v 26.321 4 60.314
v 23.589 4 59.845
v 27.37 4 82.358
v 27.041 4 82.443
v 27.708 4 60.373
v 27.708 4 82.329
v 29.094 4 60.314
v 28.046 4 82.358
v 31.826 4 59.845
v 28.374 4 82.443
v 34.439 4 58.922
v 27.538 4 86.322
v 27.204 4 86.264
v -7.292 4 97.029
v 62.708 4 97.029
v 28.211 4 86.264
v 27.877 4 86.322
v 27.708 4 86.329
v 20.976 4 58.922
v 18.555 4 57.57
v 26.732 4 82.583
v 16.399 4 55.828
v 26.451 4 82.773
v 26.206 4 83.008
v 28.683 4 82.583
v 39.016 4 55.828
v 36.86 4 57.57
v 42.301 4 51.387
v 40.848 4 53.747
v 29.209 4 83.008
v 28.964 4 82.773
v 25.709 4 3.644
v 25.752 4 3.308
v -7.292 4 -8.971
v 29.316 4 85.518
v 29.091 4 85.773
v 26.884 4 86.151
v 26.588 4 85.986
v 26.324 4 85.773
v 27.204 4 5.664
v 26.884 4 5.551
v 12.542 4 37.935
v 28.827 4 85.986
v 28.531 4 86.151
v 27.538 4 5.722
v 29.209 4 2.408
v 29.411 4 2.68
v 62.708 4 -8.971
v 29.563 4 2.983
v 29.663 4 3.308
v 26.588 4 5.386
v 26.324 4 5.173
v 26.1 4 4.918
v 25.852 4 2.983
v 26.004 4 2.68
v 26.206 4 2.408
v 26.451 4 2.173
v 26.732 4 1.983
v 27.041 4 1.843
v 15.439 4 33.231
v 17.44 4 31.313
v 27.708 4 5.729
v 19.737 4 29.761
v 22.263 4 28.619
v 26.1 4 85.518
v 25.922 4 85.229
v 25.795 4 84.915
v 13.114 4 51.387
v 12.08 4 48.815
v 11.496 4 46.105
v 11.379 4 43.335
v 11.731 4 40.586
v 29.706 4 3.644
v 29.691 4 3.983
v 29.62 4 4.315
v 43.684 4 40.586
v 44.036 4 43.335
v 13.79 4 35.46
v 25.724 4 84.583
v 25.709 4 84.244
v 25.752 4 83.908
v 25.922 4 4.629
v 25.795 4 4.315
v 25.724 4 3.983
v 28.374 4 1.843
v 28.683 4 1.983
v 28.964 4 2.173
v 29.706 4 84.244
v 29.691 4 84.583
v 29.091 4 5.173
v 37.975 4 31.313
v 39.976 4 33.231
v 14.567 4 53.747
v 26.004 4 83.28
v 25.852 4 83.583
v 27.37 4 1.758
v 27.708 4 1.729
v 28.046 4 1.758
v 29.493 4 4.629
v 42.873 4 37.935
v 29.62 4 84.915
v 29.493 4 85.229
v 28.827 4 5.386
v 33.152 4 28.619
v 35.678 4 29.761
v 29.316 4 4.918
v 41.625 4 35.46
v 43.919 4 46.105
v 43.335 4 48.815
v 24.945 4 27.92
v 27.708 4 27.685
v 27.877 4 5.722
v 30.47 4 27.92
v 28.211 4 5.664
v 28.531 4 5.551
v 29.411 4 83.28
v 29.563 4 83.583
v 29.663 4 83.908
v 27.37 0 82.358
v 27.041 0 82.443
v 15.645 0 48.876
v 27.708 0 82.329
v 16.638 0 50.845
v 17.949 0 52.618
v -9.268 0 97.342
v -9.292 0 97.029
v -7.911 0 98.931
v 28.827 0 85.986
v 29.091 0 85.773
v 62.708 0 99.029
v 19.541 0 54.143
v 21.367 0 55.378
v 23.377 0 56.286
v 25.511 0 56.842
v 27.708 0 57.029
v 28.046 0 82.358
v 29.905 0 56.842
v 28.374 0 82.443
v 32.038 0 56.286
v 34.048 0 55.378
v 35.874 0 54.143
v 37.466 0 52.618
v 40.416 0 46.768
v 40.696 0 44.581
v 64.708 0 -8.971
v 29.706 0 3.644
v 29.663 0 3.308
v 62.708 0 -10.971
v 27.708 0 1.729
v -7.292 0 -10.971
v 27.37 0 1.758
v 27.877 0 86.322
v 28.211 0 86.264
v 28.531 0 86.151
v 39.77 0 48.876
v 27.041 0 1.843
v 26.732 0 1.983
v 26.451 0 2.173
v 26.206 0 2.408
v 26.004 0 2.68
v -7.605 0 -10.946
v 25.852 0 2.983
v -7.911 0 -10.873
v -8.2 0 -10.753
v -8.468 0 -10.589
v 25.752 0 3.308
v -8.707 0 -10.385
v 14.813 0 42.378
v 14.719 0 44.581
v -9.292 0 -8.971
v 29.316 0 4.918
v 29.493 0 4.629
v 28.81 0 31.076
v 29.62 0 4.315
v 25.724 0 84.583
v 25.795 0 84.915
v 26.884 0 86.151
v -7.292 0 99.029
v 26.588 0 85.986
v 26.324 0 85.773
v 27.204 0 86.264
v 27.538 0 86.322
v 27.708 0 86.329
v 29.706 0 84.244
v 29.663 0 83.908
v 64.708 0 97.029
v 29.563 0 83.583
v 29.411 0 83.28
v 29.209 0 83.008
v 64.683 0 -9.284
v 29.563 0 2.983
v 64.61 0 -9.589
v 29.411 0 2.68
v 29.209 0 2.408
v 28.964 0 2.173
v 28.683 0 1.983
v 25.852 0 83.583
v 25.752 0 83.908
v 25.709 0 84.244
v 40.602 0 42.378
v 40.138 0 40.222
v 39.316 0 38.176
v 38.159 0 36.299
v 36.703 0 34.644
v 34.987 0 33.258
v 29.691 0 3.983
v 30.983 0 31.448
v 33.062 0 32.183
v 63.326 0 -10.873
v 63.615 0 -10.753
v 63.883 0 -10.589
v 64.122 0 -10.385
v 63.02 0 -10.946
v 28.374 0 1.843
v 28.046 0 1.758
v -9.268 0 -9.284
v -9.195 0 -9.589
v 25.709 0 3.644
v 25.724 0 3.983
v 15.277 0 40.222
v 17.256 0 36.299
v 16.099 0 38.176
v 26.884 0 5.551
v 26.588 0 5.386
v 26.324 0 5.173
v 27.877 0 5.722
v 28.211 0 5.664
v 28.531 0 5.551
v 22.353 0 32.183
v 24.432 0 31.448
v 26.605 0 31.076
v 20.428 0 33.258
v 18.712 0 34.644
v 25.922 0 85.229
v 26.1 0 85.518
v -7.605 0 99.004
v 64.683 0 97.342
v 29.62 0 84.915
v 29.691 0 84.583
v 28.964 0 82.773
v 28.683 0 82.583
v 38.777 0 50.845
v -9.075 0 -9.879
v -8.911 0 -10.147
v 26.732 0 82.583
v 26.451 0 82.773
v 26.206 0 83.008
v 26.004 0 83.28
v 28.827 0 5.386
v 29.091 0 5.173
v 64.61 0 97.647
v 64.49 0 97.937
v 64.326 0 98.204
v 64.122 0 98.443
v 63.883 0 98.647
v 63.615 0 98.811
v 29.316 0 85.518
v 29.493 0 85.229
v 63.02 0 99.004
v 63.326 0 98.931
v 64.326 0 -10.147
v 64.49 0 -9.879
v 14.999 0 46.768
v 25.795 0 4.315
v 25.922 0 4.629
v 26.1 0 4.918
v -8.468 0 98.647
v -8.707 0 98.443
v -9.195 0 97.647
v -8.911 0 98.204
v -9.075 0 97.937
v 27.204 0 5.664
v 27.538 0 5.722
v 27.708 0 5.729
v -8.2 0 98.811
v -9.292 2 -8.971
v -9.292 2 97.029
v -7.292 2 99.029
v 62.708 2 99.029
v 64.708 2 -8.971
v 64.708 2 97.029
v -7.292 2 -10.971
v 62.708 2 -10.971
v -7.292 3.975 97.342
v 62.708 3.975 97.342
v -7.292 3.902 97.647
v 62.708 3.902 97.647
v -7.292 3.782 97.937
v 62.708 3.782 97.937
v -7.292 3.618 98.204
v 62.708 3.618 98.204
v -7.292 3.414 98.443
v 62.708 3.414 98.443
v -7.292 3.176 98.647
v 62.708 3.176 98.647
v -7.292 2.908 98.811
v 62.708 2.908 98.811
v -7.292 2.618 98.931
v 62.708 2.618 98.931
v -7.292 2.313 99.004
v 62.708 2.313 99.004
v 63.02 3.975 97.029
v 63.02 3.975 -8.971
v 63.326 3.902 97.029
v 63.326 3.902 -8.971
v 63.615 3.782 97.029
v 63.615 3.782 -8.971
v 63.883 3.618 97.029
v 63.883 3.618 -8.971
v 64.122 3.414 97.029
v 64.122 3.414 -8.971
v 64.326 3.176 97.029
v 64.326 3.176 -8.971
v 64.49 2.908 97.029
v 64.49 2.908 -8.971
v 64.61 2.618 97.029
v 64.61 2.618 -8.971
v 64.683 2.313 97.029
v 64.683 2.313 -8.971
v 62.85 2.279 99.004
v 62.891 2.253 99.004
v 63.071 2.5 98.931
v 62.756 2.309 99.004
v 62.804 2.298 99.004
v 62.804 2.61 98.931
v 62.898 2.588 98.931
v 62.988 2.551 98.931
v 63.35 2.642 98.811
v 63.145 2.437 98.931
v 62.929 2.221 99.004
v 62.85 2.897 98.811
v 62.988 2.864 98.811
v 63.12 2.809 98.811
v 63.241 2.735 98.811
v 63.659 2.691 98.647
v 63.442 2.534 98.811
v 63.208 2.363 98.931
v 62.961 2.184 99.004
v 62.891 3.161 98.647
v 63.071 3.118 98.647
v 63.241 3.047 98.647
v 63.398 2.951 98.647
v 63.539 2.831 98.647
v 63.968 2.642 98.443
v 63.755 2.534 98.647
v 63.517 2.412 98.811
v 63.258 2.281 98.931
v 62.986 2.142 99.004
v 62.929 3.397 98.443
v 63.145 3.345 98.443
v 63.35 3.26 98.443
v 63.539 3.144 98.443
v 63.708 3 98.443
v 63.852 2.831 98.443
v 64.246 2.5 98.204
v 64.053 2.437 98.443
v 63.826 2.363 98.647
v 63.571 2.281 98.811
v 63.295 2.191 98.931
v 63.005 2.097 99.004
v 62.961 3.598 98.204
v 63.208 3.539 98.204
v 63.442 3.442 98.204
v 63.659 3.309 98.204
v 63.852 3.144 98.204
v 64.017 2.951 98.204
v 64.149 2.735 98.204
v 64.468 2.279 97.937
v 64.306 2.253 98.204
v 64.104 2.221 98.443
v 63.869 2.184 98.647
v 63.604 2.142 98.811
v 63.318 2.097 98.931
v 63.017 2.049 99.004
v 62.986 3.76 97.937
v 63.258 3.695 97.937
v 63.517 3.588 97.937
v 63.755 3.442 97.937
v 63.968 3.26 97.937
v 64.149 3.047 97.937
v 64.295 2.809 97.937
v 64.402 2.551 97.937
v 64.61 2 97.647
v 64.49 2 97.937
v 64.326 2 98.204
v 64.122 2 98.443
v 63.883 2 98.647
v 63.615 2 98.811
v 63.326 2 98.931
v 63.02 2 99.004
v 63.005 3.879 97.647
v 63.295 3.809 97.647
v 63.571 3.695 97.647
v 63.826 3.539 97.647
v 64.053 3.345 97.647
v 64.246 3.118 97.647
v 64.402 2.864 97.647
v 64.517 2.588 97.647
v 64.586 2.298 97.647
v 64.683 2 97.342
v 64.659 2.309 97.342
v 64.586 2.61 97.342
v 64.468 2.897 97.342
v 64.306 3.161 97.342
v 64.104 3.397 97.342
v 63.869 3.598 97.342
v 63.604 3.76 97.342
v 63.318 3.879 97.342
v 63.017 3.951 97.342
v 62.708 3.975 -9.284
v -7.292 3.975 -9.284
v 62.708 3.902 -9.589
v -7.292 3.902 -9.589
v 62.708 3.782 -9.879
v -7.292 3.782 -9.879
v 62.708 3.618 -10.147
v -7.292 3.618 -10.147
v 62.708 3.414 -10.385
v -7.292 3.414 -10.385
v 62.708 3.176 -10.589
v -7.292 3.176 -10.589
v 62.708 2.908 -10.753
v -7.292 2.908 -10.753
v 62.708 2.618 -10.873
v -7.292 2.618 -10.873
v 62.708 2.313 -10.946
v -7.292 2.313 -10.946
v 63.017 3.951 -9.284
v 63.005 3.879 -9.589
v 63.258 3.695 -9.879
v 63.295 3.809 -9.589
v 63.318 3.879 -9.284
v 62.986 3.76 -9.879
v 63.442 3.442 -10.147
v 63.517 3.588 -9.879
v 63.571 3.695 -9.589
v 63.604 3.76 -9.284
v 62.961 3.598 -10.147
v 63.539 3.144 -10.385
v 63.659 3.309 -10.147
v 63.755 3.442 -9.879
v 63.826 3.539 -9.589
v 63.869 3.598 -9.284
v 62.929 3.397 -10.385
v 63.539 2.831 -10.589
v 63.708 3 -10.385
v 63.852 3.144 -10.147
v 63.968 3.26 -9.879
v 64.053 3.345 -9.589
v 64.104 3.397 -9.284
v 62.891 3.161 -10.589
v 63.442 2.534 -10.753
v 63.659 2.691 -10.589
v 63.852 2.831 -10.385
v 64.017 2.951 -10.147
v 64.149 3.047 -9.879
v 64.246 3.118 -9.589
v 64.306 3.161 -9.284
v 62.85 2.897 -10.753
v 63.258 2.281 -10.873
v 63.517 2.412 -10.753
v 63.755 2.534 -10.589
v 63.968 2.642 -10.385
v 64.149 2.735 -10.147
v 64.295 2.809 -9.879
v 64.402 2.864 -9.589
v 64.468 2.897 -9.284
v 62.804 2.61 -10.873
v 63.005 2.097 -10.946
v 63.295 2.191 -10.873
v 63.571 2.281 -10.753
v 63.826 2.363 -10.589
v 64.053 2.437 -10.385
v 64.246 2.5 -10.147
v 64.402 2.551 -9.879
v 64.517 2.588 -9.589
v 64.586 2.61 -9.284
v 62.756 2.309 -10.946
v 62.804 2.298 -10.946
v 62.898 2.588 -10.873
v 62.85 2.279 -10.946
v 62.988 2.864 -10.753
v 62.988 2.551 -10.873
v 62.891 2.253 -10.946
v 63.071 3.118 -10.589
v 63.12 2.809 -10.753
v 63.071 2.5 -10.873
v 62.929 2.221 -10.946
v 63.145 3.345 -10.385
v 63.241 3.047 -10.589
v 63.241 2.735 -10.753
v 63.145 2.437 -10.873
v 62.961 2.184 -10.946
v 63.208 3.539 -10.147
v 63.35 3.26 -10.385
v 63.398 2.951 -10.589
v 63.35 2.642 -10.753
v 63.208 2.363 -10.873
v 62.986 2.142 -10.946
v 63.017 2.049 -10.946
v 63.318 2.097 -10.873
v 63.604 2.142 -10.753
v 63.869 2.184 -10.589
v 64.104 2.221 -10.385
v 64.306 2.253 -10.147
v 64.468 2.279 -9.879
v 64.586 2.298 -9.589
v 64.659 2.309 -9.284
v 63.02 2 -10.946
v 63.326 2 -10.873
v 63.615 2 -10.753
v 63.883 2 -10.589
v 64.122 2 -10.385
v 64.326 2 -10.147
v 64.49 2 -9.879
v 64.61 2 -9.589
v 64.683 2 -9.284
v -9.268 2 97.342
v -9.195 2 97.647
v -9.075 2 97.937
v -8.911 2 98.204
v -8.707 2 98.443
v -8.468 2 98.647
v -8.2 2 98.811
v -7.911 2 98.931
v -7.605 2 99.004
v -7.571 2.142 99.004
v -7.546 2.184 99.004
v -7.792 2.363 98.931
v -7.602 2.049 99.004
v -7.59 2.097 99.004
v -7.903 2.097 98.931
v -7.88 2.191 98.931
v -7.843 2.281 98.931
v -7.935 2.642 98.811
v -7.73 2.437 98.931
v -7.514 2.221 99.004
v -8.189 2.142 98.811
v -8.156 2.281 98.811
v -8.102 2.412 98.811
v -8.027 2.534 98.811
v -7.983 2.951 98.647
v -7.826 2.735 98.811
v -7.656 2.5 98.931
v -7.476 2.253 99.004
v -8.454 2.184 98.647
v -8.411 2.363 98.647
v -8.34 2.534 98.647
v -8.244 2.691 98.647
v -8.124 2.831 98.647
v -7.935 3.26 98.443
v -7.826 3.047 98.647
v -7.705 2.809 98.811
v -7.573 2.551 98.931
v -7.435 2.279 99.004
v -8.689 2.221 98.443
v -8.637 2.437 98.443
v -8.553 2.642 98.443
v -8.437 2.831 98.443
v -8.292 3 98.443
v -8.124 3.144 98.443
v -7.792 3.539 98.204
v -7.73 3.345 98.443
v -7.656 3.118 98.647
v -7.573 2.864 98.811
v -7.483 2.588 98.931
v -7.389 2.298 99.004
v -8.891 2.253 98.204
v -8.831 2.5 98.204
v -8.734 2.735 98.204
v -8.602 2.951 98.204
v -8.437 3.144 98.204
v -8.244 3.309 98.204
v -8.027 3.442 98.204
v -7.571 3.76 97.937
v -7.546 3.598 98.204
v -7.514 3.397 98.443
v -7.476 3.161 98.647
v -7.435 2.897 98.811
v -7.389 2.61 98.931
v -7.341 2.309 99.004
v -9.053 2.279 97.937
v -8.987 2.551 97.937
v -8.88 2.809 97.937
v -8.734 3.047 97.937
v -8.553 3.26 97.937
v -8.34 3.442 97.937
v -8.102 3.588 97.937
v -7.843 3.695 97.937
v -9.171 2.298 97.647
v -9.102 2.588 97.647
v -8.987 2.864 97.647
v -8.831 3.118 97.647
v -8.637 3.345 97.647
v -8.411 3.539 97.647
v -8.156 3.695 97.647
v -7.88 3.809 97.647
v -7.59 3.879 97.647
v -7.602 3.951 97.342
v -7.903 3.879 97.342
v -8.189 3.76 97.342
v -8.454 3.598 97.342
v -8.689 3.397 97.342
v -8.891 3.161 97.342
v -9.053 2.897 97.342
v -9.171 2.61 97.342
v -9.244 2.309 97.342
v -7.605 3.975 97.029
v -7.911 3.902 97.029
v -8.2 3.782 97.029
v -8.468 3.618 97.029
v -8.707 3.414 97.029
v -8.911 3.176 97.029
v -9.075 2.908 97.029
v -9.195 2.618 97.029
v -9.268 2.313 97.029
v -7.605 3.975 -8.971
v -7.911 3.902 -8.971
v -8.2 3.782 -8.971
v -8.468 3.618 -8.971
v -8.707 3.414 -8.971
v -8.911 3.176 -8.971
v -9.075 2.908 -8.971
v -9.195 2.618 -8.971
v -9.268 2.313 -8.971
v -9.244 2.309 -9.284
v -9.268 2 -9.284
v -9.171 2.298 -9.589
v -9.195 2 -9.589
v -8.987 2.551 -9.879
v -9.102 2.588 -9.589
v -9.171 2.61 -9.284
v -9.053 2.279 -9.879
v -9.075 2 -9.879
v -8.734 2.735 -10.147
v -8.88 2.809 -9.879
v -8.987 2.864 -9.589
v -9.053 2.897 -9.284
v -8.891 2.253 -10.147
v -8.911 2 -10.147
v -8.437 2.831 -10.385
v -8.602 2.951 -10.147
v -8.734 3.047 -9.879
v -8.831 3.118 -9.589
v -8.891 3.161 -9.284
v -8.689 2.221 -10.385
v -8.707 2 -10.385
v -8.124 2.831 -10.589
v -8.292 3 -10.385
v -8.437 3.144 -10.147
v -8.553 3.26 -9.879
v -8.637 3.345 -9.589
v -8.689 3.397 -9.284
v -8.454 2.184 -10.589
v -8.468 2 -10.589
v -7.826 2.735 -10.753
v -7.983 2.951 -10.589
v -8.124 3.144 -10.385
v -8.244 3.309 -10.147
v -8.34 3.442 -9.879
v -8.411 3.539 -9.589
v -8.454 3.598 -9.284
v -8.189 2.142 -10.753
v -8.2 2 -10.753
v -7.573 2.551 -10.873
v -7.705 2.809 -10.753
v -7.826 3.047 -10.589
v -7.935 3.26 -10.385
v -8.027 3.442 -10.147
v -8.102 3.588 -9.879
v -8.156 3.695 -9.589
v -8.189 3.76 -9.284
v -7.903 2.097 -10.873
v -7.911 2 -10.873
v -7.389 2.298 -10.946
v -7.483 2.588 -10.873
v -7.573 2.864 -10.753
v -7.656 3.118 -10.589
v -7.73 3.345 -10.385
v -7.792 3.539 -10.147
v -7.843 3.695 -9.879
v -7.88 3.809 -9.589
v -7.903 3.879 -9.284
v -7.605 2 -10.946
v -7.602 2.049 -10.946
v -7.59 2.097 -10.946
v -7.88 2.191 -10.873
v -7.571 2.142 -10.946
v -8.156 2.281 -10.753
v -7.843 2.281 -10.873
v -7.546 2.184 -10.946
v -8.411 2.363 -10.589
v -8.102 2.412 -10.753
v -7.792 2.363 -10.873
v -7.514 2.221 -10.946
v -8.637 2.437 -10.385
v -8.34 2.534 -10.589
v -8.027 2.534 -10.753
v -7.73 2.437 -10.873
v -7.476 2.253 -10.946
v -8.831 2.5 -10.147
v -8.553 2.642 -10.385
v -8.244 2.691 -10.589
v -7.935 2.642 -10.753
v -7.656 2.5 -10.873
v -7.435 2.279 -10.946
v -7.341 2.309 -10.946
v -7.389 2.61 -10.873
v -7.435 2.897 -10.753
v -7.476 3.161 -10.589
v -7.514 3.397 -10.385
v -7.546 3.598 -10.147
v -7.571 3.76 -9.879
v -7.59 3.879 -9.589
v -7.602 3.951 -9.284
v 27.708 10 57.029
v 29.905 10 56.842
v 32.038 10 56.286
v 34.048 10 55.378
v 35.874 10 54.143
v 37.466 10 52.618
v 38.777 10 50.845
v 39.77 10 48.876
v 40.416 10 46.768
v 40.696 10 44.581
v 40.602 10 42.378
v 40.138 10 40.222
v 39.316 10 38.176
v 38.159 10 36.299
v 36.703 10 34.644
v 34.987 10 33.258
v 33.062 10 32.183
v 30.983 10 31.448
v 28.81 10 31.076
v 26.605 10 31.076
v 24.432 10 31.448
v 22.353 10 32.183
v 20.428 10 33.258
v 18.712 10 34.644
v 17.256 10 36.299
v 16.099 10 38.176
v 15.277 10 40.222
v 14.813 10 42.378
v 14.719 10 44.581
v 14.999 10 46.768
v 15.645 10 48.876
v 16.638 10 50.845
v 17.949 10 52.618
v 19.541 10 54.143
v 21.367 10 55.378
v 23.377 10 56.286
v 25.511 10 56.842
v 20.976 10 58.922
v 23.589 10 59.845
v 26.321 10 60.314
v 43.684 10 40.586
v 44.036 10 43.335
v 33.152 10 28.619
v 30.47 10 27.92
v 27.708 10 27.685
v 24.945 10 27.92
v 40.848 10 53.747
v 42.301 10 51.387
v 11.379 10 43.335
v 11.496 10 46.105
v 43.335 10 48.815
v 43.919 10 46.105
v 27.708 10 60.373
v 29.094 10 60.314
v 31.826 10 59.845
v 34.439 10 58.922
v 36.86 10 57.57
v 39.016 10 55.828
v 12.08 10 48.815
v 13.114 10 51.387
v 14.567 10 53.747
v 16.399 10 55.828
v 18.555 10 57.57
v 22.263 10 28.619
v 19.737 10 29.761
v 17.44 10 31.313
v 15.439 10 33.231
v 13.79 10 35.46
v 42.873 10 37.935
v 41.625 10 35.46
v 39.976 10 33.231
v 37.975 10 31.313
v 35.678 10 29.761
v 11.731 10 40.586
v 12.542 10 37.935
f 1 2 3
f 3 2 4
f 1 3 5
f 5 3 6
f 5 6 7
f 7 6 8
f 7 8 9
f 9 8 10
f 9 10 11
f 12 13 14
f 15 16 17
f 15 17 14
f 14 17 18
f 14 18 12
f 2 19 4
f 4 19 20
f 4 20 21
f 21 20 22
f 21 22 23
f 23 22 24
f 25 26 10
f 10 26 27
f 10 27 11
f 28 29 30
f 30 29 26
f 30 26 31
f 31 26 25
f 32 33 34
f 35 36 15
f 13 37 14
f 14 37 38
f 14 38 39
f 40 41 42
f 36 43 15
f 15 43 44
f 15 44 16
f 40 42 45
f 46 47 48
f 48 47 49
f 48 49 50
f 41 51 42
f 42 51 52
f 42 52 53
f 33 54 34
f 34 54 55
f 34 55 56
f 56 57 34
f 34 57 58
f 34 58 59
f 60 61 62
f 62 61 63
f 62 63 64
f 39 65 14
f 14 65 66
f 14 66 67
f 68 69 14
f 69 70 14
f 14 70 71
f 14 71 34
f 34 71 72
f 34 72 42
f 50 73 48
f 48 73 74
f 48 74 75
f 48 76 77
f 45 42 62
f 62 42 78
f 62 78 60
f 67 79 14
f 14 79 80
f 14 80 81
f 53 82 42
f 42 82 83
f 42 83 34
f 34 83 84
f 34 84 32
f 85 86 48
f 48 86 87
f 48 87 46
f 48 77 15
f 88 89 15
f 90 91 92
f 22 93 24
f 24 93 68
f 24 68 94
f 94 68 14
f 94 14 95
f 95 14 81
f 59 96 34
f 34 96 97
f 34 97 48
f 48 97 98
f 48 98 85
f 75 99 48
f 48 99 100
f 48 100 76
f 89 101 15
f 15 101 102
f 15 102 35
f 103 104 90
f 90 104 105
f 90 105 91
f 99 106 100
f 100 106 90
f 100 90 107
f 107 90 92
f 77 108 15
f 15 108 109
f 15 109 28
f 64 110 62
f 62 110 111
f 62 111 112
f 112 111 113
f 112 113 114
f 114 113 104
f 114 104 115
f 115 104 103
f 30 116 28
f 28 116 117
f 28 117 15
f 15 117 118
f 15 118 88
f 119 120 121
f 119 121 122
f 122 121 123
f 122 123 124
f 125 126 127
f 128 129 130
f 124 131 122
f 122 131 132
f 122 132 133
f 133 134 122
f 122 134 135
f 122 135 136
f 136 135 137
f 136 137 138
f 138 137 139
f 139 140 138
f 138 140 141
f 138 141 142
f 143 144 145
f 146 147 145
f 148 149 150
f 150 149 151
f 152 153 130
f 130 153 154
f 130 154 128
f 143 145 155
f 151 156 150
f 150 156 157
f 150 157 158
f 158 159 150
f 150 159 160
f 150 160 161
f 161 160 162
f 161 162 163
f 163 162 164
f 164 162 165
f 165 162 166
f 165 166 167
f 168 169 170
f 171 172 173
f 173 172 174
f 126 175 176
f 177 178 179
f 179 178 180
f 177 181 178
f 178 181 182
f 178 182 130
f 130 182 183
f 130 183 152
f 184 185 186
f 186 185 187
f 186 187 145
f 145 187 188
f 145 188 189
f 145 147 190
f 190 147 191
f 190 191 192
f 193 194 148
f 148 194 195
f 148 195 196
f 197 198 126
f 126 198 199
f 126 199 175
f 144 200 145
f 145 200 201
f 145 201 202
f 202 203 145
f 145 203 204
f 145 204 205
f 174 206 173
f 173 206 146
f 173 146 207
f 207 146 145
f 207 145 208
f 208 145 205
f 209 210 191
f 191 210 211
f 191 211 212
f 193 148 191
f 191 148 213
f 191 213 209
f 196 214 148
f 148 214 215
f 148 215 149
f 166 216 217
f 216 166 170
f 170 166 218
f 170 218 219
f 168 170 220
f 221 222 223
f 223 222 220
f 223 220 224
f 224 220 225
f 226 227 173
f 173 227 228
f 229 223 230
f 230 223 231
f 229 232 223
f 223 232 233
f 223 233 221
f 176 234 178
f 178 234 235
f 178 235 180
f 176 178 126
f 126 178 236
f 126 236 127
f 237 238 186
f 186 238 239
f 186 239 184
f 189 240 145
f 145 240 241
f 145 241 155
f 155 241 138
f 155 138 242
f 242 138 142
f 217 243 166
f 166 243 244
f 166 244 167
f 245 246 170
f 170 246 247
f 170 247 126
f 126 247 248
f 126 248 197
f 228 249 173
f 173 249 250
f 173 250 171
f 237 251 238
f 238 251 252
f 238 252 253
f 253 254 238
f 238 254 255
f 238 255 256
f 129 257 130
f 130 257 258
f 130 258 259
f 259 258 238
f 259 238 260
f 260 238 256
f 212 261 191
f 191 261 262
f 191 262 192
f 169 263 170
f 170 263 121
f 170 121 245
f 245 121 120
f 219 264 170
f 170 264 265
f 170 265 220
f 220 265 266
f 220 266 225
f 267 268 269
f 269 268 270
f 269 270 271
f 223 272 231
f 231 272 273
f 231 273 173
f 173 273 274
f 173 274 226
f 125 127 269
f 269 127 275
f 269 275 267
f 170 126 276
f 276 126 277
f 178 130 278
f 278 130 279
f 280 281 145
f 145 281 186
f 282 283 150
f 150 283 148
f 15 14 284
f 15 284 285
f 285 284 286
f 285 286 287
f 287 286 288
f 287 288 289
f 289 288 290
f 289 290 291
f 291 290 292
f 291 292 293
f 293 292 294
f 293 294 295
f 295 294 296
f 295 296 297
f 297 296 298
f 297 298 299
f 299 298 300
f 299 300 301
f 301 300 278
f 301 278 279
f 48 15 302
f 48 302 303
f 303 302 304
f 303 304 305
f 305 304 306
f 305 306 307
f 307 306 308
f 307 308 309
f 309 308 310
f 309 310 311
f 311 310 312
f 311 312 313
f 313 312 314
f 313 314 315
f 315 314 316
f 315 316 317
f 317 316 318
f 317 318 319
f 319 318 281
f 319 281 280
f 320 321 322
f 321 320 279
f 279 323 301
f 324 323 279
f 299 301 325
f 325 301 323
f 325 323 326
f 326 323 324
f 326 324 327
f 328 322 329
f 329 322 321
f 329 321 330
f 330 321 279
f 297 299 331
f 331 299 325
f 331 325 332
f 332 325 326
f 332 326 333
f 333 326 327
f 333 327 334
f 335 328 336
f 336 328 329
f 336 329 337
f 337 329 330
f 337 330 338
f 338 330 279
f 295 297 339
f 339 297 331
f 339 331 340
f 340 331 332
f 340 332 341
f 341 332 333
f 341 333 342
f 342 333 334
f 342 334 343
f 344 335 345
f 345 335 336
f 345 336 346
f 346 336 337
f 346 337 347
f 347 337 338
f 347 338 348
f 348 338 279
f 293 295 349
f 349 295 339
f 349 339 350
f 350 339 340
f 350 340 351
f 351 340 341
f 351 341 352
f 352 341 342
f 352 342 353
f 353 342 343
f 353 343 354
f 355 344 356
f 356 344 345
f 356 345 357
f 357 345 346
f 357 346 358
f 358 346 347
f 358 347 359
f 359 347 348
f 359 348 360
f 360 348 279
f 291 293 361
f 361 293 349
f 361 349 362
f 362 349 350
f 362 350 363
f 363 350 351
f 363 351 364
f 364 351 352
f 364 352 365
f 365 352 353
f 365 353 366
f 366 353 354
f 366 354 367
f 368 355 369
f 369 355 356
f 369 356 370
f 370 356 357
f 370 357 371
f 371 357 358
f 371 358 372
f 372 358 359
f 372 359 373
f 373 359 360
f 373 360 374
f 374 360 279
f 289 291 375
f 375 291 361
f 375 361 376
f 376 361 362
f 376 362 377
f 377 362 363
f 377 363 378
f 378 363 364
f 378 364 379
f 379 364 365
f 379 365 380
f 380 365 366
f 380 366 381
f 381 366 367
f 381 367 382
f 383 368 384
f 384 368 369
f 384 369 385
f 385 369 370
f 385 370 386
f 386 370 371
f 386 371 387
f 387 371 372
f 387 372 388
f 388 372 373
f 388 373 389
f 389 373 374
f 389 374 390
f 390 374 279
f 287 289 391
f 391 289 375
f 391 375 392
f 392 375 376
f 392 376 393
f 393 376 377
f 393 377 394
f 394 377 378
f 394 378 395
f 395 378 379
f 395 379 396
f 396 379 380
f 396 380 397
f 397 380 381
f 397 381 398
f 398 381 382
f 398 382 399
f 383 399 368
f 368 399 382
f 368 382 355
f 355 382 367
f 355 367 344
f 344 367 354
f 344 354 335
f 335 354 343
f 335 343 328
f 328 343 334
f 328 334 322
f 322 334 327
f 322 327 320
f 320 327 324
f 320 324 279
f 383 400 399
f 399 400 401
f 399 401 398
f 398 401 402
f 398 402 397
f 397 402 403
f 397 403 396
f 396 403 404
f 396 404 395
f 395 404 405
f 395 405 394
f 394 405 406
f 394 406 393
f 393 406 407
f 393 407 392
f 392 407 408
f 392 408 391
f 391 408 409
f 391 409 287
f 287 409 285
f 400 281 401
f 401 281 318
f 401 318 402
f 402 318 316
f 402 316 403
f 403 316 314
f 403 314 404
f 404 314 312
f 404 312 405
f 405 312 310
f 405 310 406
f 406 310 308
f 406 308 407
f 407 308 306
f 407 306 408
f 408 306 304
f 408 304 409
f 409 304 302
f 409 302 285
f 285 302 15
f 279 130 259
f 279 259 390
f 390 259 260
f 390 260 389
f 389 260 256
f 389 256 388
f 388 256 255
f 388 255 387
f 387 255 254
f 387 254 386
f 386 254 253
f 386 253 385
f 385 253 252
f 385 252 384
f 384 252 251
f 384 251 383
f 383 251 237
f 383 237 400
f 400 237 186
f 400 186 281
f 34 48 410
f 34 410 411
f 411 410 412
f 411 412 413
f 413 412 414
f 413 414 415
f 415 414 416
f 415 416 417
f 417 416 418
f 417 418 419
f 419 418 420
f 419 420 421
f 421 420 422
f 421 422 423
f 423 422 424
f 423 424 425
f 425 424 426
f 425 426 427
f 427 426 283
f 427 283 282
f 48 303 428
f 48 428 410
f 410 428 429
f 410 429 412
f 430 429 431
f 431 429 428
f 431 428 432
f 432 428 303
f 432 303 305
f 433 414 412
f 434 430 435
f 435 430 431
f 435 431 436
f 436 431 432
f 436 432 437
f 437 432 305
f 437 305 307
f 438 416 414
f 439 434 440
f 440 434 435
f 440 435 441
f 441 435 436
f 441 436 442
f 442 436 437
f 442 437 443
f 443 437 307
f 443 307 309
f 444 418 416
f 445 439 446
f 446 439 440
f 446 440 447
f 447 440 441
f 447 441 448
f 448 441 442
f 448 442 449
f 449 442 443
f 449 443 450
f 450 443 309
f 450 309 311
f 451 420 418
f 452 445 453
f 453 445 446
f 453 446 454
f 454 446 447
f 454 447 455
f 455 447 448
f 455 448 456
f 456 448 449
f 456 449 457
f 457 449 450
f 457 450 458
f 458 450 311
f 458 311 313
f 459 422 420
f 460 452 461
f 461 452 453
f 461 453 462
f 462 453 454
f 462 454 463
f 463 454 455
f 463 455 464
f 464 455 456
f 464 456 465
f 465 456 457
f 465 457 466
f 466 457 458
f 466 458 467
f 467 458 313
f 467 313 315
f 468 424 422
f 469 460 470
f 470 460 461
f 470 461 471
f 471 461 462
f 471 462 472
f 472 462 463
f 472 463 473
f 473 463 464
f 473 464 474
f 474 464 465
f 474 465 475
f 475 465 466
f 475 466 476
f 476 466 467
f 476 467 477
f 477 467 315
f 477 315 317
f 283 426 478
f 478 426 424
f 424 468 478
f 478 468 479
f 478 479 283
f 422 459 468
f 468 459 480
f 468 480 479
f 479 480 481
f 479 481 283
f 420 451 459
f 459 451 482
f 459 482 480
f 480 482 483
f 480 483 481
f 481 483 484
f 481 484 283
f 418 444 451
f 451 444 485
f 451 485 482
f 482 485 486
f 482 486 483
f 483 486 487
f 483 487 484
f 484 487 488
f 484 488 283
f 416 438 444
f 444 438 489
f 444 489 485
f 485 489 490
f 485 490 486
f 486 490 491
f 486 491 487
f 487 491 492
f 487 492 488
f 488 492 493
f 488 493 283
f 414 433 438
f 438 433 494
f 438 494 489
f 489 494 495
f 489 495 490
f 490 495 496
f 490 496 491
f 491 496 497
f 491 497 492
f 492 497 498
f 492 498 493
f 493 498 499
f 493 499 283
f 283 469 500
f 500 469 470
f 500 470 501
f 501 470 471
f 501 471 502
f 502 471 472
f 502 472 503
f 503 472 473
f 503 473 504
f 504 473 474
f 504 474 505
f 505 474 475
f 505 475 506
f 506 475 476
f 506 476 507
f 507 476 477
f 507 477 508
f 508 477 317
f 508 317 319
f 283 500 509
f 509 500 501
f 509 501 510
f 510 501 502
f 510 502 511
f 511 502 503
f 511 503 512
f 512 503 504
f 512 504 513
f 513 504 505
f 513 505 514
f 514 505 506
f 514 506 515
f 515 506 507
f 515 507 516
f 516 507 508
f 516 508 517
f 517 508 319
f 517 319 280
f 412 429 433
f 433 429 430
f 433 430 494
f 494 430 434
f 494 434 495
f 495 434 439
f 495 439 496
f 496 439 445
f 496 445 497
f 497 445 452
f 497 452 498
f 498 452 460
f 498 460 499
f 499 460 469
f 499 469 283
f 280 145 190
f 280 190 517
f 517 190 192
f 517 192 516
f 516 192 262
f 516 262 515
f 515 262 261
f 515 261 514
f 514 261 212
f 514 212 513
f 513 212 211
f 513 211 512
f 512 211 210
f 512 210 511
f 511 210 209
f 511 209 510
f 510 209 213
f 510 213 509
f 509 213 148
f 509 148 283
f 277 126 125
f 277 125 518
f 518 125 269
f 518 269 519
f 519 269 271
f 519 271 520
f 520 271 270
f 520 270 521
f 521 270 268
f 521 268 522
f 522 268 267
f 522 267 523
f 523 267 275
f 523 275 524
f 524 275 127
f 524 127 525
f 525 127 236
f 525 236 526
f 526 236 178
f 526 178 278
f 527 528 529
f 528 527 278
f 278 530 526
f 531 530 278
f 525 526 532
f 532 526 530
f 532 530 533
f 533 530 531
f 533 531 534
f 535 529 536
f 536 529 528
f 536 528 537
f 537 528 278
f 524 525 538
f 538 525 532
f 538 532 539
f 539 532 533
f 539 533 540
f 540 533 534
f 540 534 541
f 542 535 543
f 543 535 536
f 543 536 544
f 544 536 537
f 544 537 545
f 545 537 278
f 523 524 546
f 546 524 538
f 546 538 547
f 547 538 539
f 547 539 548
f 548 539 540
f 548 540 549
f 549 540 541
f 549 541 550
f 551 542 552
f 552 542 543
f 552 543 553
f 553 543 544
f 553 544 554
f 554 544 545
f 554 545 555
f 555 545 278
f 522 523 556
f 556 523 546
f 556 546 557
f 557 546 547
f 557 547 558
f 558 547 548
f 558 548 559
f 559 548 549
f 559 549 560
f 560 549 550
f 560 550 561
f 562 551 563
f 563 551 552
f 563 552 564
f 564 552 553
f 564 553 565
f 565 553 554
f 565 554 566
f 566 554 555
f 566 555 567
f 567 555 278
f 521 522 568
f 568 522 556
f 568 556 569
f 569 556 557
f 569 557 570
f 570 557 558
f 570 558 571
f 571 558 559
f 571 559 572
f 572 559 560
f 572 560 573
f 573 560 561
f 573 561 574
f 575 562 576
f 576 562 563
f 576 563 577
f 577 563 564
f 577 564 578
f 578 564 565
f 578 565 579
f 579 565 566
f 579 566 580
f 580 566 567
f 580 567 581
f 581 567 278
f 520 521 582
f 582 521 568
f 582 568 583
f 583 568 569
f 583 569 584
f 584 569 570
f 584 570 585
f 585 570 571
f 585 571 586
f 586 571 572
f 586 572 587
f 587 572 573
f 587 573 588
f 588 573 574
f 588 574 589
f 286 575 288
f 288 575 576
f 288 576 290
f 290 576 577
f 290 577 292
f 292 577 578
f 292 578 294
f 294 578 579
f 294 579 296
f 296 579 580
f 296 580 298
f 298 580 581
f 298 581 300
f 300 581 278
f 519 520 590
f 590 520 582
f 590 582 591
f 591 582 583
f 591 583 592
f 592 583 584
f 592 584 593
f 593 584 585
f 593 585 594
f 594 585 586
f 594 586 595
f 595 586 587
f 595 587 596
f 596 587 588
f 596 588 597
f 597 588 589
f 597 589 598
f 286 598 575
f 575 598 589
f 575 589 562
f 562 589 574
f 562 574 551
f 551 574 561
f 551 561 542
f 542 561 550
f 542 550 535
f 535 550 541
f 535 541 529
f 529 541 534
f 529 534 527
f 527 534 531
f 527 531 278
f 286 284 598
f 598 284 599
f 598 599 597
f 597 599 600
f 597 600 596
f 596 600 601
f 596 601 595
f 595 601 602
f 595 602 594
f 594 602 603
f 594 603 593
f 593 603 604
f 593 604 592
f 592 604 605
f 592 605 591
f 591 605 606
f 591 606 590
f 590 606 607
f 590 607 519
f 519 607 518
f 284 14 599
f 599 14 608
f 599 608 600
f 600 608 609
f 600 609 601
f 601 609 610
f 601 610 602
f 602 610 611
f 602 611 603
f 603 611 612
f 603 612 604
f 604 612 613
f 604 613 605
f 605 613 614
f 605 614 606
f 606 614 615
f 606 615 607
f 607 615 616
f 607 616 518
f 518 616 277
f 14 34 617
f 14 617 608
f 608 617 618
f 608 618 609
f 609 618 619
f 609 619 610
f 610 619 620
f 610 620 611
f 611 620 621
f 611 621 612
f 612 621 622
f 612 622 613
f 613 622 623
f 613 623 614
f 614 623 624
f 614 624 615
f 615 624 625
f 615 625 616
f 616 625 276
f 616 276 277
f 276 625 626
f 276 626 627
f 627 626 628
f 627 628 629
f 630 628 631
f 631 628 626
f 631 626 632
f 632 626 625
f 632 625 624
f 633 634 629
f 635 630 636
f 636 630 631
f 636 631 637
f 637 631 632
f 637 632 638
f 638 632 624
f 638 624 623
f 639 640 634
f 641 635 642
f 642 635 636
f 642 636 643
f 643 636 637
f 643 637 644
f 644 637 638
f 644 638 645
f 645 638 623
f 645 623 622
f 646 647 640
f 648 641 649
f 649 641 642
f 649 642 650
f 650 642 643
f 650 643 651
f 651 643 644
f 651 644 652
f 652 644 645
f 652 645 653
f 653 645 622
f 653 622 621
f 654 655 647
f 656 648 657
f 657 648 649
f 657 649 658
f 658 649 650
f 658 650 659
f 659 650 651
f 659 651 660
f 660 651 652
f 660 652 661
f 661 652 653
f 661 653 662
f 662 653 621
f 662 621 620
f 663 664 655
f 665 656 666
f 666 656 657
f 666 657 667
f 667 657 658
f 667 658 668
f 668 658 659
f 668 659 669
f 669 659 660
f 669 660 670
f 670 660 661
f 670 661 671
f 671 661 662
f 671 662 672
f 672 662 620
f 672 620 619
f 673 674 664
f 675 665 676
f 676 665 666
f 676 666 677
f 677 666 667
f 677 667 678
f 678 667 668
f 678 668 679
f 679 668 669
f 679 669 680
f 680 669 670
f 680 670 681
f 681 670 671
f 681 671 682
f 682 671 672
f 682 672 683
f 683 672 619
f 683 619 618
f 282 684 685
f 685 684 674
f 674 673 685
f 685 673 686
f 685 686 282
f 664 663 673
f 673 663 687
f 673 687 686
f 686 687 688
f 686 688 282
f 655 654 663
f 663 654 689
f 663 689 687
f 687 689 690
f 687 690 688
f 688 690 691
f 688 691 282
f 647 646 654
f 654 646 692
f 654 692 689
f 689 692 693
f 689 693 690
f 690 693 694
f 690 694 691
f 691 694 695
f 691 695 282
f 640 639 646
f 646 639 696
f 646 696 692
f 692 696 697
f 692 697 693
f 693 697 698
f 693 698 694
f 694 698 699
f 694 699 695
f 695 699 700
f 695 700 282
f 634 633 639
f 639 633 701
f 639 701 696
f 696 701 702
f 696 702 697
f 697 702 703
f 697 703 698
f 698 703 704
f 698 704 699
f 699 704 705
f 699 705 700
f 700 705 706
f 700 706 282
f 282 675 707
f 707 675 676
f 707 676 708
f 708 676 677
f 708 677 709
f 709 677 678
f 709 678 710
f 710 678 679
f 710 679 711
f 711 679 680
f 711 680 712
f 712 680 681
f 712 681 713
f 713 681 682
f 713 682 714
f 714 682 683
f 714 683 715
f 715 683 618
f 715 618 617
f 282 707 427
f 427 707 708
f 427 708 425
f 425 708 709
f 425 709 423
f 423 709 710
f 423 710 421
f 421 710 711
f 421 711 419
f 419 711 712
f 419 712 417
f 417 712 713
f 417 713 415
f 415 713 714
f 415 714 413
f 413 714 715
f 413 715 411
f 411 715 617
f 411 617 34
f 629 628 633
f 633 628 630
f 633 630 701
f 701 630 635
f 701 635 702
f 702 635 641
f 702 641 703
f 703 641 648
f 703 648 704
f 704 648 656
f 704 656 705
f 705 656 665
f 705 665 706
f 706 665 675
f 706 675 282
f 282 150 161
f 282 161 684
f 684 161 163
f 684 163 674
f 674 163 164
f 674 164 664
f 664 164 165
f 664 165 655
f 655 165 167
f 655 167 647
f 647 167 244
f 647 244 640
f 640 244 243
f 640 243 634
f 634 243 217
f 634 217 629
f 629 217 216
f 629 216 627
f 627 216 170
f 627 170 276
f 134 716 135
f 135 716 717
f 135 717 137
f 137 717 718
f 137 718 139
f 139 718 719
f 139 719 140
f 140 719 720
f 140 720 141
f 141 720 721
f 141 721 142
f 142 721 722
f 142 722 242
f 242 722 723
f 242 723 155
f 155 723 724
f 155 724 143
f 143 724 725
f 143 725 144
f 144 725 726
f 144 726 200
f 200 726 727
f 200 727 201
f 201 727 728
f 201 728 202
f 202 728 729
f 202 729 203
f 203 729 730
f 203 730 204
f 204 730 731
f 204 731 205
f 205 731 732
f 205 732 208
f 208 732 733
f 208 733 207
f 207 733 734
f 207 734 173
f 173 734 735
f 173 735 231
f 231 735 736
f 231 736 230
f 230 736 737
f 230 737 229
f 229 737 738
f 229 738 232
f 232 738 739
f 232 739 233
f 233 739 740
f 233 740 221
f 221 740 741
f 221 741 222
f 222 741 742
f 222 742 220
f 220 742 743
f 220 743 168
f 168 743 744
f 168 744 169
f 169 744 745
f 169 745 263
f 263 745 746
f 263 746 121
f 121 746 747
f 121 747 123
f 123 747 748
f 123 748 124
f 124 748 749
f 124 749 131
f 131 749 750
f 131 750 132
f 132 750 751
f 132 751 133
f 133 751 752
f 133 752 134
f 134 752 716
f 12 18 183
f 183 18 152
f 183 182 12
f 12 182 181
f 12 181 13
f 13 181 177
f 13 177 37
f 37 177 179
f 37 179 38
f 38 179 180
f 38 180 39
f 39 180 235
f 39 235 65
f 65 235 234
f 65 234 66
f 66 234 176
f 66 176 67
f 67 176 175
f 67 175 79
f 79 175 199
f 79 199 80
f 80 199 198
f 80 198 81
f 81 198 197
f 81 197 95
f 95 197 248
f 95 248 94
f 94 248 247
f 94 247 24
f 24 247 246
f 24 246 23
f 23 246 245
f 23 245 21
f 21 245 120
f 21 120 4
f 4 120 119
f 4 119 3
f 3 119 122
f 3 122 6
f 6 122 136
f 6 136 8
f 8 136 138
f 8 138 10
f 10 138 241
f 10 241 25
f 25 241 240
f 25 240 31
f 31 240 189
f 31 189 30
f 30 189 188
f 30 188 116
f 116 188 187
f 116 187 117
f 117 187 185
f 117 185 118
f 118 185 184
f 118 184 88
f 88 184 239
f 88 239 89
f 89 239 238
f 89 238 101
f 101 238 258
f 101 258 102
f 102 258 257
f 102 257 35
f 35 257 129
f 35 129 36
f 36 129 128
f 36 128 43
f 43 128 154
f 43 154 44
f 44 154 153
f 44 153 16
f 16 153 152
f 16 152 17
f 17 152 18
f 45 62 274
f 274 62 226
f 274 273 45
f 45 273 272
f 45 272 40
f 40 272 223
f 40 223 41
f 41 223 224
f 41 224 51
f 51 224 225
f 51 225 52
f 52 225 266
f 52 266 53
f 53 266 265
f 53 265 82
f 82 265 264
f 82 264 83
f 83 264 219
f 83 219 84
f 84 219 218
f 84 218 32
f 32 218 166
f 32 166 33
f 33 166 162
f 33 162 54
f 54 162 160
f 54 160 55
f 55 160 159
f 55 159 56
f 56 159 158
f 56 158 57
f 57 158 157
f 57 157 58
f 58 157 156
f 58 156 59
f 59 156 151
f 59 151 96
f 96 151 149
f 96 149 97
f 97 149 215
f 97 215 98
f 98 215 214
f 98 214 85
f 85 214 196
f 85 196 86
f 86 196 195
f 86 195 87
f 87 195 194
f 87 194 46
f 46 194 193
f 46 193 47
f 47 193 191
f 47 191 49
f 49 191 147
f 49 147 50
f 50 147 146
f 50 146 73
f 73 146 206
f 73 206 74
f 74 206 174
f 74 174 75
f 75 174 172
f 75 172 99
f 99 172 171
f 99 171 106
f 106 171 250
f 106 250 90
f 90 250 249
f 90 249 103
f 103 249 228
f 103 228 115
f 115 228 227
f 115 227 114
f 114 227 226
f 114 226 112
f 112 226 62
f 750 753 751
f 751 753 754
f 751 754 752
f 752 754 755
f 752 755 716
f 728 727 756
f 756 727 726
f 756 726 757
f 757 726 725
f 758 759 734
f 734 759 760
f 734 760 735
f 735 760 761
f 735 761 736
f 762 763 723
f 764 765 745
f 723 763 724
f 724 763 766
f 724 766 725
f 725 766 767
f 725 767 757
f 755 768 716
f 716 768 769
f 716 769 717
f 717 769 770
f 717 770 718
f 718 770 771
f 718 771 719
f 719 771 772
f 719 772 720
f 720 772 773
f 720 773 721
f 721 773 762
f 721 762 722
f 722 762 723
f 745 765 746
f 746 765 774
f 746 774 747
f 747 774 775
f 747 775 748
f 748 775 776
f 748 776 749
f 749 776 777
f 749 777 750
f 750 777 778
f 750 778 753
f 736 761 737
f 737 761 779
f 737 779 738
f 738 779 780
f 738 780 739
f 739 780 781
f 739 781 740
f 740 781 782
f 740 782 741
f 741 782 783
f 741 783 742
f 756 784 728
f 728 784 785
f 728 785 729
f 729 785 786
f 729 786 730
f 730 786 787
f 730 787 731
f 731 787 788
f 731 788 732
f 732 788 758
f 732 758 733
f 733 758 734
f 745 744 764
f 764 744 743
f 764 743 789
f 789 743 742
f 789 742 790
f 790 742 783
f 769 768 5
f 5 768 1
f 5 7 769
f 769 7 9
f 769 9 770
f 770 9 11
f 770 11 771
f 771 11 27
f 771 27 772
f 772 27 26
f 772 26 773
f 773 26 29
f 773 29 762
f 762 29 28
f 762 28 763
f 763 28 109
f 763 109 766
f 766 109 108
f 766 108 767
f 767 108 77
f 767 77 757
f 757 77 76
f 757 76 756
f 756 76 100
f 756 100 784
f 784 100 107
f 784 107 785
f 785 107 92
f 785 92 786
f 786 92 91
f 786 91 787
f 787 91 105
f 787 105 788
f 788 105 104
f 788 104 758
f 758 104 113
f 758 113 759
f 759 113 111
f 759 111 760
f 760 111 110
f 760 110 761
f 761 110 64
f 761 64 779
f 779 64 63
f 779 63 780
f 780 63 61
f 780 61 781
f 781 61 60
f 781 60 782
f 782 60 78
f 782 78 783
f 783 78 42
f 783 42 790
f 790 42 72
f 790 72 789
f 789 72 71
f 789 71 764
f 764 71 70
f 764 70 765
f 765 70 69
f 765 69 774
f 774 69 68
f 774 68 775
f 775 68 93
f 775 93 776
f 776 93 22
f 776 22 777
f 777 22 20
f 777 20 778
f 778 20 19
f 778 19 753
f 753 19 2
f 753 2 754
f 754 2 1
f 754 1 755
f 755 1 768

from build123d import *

# Parameters (mm, degrees)
ESBO_O1_W                  = 74
ESBO_O1_H                  = 110
RESSALTO_EXTRUS_O1_DEPTH   = 4
FILETE1_R                  = 2
FILETE2_R                  = 2
FILETE3_R                  = 2
FILETE4_R                  = 2
CORTE_EXTRUS_O1_DEPTH      = 15
CORTE_EXTRUS_O1_DEPTH_BACK = 10
ESBO_O2_R                  = 13
CORTE_EXTRUS_O3_DEPTH      = 15
CORTE_EXTRUS_O3_DEPTH_BACK = 15
ESBO_O3_R                  = 2
ESBO_O4_R                  = 16.343681483
ESBO_O4_R_2                = 13
RESSALTO_EXTRUS_O2_DEPTH   = 10


with BuildPart() as part:
    # Esboço1 → Ressalto-extrusão1 (new body)
    with BuildSketch(Plane(origin=(0, 0, 0), x_dir=(1, 0, 0), z_dir=(0, 1, 0))):
        with Locations((27.707512014, -44.028932547)):
            Rectangle(ESBO_O1_W, ESBO_O1_H)
    extrude(amount=RESSALTO_EXTRUS_O1_DEPTH)

    # Filete1
    filete1_edges = [part.edges().sort_by_distance(p)[0] for p in [
        (27.707512014, 4, 99.028932547),
    ]]
    fillet(filete1_edges, radius=FILETE1_R)

    # Filete2
    filete2_edges = [part.edges().sort_by_distance(p)[0] for p in [
        (64.707512014, 4, 43.028932547),
        (64.707512014, 1, 99.028932547),
        (64.707512014, 3.414213562, 98.443146109),
    ]]
    fillet(filete2_edges, radius=FILETE2_R)

    # Filete3
    filete3_edges = [part.edges().sort_by_distance(p)[0] for p in [
        (64.707512014, 1, -10.971067453),
        (26.707512014, 4, -10.971067453),
        (64.121725576, 3.414213562, -10.971067453),
    ]]
    fillet(filete3_edges, radius=FILETE3_R)

    # Filete4
    filete4_edges = [part.edges().sort_by_distance(p)[0] for p in [
        (-9.292487986, 1, 99.028932547),
        (-9.292487986, 3.414213562, 98.443146109),
        (-9.292487986, 1, -10.971067453),
        (-9.292487986, 4, 44.028932547),
        (-9.292487986, 3.414213562, -10.385281015),
    ]]
    fillet(filete4_edges, radius=FILETE4_R)

    # Esboço2 → Corte-extrusão1 (cut, two sides: drawn at the far end of the back side and taken through both)
    with BuildSketch(Plane(origin=(0, 0, 0), x_dir=(1, 0, 0), z_dir=(0, 1, 0)).offset(-CORTE_EXTRUS_O1_DEPTH_BACK)):
        with Locations(Location((27.707512014, -44.028932547, 0), (0, 0, 270))):
            Circle(ESBO_O2_R)
    extrude(amount=CORTE_EXTRUS_O1_DEPTH + CORTE_EXTRUS_O1_DEPTH_BACK, mode=Mode.SUBTRACT)

    # Esboço3 → Corte-extrusão3 (cut, two sides: drawn at the far end of the back side and taken through both)
    with BuildSketch(Plane(origin=(0, 0, 0), x_dir=(1, 0, 0), z_dir=(0, 1, 0)).offset(-CORTE_EXTRUS_O3_DEPTH_BACK)):
        with Locations(Location((27.707512014, -84.328932547, 0), (0, 0, 270))):
            Circle(ESBO_O3_R)
        with Locations(Location((27.707512014, -3.728932547, 0), (0, 0, 270))):
            Circle(ESBO_O3_R)
    extrude(amount=CORTE_EXTRUS_O3_DEPTH + CORTE_EXTRUS_O3_DEPTH_BACK, mode=Mode.SUBTRACT)

    # Esboço4 → Ressalto-extrusão2 (add)
    with BuildSketch(Plane(origin=(0, 0, 0), x_dir=(1, 0, 0), z_dir=(0, 1, 0))):
        with Locations(Location((27.707512014, -44.028932547, 0), (0, 0, 270))):
            Circle(ESBO_O4_R)
        with Locations(Location((27.707512014, -44.028932547, 0), (0, 0, 270))):
            Circle(ESBO_O4_R_2, mode=Mode.SUBTRACT)
    extrude(amount=RESSALTO_EXTRUS_O2_DEPTH)


solid = part.part
